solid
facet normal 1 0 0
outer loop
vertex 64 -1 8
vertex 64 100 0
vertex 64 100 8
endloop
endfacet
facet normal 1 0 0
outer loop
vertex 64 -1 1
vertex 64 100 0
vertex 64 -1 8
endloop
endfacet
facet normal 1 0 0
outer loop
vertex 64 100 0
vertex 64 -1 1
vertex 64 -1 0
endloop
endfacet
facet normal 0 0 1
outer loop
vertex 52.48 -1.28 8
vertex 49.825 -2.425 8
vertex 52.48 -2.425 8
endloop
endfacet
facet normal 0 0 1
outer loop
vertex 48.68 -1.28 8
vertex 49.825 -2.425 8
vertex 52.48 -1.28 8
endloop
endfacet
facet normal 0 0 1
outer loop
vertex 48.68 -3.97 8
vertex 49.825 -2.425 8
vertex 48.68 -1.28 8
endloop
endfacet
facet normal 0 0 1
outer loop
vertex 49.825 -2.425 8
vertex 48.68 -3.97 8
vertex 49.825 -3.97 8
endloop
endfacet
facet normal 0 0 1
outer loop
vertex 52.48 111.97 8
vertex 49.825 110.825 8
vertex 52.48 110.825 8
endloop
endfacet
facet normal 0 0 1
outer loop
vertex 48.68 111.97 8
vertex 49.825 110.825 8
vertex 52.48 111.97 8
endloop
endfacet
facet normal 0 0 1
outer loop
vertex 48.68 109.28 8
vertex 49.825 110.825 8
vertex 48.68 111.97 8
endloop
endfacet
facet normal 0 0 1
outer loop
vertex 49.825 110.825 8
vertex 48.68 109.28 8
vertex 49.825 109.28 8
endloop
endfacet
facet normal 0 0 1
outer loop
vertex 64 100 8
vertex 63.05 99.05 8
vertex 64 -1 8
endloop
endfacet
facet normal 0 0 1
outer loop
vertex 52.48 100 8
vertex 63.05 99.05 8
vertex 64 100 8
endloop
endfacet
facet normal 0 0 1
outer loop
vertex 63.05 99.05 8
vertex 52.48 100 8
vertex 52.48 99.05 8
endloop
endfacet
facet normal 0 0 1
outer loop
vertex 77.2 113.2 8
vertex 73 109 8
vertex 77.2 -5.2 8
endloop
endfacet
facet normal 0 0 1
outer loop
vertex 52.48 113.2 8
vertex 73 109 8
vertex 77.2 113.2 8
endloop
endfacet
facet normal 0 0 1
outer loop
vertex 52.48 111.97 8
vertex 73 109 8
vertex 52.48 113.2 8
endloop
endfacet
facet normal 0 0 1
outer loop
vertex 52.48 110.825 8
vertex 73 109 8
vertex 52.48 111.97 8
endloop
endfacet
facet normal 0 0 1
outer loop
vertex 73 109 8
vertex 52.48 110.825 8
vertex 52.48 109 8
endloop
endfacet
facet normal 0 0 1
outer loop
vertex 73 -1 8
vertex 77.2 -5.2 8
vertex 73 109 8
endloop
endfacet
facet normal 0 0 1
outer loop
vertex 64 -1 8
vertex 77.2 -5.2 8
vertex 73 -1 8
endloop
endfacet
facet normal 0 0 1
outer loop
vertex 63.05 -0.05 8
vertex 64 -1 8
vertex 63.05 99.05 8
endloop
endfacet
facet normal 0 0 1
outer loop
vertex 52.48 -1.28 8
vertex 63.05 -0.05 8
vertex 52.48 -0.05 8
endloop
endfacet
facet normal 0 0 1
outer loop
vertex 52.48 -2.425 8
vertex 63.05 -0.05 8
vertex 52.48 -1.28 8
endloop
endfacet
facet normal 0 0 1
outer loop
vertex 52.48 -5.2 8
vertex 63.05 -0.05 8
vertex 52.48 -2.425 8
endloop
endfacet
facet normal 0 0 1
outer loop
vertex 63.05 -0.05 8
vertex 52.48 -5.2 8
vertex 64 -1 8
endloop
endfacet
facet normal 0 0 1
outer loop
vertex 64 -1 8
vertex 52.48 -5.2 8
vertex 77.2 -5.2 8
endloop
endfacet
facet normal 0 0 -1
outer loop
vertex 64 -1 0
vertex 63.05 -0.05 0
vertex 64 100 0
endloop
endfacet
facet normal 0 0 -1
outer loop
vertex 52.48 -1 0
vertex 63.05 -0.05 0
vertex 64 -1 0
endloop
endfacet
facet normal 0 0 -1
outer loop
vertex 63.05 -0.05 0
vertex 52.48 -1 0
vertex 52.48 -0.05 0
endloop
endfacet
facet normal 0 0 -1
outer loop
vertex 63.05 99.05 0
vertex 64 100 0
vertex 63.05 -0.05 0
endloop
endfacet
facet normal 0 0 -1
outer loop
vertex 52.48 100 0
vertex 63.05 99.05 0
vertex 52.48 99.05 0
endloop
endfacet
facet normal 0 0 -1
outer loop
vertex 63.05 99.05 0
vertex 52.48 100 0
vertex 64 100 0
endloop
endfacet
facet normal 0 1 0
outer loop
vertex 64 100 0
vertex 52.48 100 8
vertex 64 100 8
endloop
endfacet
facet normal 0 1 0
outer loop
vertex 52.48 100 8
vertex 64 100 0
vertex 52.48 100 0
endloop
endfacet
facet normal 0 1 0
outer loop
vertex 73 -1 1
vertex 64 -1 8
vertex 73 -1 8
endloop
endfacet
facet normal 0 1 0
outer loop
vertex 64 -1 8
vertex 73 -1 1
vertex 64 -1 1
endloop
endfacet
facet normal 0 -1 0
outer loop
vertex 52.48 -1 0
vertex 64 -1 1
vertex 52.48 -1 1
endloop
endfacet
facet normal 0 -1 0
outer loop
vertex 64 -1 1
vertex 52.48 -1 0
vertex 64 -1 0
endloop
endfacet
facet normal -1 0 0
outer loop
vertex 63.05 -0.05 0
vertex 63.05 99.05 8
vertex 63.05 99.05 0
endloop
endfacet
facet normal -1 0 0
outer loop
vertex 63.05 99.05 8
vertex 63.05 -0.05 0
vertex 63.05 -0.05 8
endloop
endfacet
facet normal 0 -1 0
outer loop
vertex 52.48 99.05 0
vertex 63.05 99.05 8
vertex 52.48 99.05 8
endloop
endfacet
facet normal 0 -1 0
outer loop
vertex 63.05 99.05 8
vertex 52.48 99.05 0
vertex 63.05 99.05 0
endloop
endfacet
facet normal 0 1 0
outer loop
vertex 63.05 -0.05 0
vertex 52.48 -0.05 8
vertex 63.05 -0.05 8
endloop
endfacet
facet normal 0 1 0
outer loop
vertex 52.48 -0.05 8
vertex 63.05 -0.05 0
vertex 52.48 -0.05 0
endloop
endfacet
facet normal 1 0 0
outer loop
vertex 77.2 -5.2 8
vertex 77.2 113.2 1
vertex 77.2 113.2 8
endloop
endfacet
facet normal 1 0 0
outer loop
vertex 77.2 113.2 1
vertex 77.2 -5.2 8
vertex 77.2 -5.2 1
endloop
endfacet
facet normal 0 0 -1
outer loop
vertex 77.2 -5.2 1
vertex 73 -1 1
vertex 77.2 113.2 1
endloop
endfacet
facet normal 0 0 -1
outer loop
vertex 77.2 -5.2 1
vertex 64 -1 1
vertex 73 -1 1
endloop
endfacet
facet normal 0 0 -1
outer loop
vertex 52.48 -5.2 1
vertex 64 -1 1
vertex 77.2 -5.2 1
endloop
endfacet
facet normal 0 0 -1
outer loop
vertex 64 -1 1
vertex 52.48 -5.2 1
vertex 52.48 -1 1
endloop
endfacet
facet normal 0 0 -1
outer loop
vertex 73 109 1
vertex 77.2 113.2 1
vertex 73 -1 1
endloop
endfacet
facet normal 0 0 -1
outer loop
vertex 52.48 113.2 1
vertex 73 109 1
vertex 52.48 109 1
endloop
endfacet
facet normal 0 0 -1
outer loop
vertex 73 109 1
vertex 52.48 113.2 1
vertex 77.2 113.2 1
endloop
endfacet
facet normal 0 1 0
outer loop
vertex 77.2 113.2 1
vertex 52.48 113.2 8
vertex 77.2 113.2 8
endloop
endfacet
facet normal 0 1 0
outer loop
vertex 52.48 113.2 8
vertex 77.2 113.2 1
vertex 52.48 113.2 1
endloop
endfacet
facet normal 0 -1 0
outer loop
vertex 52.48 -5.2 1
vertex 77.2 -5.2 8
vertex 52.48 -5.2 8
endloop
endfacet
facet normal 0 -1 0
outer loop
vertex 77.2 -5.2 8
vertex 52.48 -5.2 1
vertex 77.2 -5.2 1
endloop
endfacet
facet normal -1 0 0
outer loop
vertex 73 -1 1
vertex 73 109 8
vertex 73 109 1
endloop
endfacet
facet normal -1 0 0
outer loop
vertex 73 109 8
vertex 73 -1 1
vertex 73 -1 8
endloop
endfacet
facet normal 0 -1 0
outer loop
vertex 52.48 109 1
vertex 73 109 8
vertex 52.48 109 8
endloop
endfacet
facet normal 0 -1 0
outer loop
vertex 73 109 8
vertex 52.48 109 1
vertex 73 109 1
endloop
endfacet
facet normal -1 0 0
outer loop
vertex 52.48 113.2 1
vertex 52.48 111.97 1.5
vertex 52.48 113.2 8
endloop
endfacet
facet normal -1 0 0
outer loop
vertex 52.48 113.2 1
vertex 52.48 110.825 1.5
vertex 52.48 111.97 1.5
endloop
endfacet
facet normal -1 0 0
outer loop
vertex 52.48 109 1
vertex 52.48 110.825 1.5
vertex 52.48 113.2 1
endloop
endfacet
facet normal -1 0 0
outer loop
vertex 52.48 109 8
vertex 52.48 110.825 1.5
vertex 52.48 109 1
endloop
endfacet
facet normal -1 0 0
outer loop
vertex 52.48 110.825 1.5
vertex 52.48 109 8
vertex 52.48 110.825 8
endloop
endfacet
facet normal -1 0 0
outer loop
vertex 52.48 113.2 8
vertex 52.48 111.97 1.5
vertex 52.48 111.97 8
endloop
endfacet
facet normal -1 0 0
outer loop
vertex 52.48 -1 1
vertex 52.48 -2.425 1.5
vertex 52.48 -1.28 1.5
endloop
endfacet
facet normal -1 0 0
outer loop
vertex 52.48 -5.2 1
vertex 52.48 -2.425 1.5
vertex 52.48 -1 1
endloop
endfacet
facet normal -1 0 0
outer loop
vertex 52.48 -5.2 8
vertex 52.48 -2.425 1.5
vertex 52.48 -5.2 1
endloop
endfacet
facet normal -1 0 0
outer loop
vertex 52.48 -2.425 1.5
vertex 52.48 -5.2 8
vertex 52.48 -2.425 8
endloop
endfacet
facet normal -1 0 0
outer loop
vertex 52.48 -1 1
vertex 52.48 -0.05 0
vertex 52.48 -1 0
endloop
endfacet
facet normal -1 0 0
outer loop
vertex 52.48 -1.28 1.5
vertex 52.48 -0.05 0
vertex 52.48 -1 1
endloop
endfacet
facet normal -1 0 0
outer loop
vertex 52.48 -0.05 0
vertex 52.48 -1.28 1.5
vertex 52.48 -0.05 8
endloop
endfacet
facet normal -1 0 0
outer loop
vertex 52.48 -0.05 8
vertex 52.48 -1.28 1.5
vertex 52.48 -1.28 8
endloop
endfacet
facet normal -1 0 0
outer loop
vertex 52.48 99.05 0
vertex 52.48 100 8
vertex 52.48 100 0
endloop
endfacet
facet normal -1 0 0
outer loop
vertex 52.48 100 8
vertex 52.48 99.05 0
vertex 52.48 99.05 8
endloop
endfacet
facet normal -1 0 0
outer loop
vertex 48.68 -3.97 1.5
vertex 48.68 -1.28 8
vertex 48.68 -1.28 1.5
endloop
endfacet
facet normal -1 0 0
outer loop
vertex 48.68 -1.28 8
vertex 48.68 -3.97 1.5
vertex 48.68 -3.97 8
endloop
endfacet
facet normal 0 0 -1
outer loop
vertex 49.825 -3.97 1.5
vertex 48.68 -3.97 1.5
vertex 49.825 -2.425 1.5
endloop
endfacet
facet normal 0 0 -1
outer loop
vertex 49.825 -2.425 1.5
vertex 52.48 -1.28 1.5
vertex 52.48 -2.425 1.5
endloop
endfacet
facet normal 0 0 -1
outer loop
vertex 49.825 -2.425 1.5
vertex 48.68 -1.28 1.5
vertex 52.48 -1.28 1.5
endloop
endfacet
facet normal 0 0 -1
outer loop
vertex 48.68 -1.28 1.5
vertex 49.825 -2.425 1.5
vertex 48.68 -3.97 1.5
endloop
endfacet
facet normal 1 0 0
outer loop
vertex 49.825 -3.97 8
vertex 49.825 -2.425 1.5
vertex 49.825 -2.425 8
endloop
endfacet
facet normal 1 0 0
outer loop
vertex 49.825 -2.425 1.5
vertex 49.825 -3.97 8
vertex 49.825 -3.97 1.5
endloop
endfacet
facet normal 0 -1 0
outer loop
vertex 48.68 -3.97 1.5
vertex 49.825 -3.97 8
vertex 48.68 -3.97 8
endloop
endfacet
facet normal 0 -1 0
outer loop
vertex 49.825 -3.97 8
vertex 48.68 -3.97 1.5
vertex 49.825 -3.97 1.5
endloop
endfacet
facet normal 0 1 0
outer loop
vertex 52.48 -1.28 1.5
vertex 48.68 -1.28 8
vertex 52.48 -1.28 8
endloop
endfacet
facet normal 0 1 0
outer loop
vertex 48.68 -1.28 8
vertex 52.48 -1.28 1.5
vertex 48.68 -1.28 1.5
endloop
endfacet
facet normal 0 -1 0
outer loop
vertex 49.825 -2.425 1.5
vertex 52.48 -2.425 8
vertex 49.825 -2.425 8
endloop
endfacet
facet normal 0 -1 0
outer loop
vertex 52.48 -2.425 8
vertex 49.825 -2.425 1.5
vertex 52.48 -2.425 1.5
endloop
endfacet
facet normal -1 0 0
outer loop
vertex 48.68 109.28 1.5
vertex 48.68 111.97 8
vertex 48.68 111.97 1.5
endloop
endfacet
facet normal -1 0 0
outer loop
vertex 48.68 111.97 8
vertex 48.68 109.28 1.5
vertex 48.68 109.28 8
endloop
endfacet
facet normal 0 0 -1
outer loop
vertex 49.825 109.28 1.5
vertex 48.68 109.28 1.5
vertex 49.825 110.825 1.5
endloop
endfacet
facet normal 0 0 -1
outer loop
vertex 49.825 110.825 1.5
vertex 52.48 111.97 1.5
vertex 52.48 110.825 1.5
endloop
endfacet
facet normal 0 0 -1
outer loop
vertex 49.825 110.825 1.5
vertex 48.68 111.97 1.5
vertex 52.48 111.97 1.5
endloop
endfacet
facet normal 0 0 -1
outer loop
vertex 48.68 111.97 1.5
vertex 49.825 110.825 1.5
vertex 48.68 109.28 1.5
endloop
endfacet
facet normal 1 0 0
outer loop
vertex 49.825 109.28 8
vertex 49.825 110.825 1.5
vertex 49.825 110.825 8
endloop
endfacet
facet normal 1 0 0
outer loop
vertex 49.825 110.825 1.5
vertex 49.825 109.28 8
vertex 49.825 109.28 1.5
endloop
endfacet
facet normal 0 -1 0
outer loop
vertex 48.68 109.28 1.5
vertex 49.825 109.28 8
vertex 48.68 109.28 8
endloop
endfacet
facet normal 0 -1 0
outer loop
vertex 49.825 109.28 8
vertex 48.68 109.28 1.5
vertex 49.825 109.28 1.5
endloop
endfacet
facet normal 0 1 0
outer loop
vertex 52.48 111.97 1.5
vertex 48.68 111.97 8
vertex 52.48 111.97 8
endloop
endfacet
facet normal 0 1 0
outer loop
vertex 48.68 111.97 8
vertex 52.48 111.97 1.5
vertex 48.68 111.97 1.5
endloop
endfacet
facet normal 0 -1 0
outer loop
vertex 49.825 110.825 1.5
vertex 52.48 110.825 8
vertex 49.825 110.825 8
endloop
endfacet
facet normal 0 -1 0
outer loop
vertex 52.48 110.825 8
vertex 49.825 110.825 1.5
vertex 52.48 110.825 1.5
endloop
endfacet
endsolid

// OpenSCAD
// Generated by SolidPython 1.0.4 on 2021-07-12 16:55:54


union() {
	union() {
		difference() {
			union() {
				difference() {
					translate(v = [-1.0000000000, -1.0000000000, 0]) {
						cube(size = [65.0000000000, 101.0000000000, 8]);
					}
					translate(v = [-0.0500000000, -0.0500000000, 0]) {
						cube(size = [63.1000000000, 99.1000000000, 8]);
					}
				}
				translate(v = [0, 0, 1]) {
					difference() {
						translate(v = [-5.2000000000, -5.2000000000, 0]) {
							cube(size = [82.4000000000, 118.4000000000, 7]);
						}
						translate(v = [-1.0000000000, -1.0000000000, 0]) {
							cube(size = [74.0000000000, 110.0000000000, 7]);
						}
					}
				}
			}
			translate(v = [-5.2000000000, -5.2000000000, 0]) {
				cube(size = [57.6800000000, 118.4000000000, 8]);
			}
		}
		translate(v = [48.4800000000, -4.1700000000, 0]) {
			translate(v = [0.2000000000, 0.2000000000, 0]) {
				translate(v = [0, 0, 1.5000000000]) {
					translate(v = [3.8000000000, 2.6900000000, 0]) {
						rotate(a = -180) {
							union() {
								translate(v = [2.6550000000, 0, 0]) {
									cube(size = [1.1450000000, 2.6900000000, 6.5000000000]);
								}
								cube(size = [3.8000000000, 1.1450000000, 6.5000000000]);
							}
						}
					}
				}
			}
		}
	}
	translate(v = [48.4800000000, 109.0800000000, 0]) {
		translate(v = [0.2000000000, 0.2000000000, 0]) {
			translate(v = [0, 0, 1.5000000000]) {
				translate(v = [3.8000000000, 2.6900000000, 0]) {
					rotate(a = -180) {
						union() {
							translate(v = [2.6550000000, 0, 0]) {
								cube(size = [1.1450000000, 2.6900000000, 6.5000000000]);
							}
							cube(size = [3.8000000000, 1.1450000000, 6.5000000000]);
						}
					}
				}
			}
		}
	}
}
